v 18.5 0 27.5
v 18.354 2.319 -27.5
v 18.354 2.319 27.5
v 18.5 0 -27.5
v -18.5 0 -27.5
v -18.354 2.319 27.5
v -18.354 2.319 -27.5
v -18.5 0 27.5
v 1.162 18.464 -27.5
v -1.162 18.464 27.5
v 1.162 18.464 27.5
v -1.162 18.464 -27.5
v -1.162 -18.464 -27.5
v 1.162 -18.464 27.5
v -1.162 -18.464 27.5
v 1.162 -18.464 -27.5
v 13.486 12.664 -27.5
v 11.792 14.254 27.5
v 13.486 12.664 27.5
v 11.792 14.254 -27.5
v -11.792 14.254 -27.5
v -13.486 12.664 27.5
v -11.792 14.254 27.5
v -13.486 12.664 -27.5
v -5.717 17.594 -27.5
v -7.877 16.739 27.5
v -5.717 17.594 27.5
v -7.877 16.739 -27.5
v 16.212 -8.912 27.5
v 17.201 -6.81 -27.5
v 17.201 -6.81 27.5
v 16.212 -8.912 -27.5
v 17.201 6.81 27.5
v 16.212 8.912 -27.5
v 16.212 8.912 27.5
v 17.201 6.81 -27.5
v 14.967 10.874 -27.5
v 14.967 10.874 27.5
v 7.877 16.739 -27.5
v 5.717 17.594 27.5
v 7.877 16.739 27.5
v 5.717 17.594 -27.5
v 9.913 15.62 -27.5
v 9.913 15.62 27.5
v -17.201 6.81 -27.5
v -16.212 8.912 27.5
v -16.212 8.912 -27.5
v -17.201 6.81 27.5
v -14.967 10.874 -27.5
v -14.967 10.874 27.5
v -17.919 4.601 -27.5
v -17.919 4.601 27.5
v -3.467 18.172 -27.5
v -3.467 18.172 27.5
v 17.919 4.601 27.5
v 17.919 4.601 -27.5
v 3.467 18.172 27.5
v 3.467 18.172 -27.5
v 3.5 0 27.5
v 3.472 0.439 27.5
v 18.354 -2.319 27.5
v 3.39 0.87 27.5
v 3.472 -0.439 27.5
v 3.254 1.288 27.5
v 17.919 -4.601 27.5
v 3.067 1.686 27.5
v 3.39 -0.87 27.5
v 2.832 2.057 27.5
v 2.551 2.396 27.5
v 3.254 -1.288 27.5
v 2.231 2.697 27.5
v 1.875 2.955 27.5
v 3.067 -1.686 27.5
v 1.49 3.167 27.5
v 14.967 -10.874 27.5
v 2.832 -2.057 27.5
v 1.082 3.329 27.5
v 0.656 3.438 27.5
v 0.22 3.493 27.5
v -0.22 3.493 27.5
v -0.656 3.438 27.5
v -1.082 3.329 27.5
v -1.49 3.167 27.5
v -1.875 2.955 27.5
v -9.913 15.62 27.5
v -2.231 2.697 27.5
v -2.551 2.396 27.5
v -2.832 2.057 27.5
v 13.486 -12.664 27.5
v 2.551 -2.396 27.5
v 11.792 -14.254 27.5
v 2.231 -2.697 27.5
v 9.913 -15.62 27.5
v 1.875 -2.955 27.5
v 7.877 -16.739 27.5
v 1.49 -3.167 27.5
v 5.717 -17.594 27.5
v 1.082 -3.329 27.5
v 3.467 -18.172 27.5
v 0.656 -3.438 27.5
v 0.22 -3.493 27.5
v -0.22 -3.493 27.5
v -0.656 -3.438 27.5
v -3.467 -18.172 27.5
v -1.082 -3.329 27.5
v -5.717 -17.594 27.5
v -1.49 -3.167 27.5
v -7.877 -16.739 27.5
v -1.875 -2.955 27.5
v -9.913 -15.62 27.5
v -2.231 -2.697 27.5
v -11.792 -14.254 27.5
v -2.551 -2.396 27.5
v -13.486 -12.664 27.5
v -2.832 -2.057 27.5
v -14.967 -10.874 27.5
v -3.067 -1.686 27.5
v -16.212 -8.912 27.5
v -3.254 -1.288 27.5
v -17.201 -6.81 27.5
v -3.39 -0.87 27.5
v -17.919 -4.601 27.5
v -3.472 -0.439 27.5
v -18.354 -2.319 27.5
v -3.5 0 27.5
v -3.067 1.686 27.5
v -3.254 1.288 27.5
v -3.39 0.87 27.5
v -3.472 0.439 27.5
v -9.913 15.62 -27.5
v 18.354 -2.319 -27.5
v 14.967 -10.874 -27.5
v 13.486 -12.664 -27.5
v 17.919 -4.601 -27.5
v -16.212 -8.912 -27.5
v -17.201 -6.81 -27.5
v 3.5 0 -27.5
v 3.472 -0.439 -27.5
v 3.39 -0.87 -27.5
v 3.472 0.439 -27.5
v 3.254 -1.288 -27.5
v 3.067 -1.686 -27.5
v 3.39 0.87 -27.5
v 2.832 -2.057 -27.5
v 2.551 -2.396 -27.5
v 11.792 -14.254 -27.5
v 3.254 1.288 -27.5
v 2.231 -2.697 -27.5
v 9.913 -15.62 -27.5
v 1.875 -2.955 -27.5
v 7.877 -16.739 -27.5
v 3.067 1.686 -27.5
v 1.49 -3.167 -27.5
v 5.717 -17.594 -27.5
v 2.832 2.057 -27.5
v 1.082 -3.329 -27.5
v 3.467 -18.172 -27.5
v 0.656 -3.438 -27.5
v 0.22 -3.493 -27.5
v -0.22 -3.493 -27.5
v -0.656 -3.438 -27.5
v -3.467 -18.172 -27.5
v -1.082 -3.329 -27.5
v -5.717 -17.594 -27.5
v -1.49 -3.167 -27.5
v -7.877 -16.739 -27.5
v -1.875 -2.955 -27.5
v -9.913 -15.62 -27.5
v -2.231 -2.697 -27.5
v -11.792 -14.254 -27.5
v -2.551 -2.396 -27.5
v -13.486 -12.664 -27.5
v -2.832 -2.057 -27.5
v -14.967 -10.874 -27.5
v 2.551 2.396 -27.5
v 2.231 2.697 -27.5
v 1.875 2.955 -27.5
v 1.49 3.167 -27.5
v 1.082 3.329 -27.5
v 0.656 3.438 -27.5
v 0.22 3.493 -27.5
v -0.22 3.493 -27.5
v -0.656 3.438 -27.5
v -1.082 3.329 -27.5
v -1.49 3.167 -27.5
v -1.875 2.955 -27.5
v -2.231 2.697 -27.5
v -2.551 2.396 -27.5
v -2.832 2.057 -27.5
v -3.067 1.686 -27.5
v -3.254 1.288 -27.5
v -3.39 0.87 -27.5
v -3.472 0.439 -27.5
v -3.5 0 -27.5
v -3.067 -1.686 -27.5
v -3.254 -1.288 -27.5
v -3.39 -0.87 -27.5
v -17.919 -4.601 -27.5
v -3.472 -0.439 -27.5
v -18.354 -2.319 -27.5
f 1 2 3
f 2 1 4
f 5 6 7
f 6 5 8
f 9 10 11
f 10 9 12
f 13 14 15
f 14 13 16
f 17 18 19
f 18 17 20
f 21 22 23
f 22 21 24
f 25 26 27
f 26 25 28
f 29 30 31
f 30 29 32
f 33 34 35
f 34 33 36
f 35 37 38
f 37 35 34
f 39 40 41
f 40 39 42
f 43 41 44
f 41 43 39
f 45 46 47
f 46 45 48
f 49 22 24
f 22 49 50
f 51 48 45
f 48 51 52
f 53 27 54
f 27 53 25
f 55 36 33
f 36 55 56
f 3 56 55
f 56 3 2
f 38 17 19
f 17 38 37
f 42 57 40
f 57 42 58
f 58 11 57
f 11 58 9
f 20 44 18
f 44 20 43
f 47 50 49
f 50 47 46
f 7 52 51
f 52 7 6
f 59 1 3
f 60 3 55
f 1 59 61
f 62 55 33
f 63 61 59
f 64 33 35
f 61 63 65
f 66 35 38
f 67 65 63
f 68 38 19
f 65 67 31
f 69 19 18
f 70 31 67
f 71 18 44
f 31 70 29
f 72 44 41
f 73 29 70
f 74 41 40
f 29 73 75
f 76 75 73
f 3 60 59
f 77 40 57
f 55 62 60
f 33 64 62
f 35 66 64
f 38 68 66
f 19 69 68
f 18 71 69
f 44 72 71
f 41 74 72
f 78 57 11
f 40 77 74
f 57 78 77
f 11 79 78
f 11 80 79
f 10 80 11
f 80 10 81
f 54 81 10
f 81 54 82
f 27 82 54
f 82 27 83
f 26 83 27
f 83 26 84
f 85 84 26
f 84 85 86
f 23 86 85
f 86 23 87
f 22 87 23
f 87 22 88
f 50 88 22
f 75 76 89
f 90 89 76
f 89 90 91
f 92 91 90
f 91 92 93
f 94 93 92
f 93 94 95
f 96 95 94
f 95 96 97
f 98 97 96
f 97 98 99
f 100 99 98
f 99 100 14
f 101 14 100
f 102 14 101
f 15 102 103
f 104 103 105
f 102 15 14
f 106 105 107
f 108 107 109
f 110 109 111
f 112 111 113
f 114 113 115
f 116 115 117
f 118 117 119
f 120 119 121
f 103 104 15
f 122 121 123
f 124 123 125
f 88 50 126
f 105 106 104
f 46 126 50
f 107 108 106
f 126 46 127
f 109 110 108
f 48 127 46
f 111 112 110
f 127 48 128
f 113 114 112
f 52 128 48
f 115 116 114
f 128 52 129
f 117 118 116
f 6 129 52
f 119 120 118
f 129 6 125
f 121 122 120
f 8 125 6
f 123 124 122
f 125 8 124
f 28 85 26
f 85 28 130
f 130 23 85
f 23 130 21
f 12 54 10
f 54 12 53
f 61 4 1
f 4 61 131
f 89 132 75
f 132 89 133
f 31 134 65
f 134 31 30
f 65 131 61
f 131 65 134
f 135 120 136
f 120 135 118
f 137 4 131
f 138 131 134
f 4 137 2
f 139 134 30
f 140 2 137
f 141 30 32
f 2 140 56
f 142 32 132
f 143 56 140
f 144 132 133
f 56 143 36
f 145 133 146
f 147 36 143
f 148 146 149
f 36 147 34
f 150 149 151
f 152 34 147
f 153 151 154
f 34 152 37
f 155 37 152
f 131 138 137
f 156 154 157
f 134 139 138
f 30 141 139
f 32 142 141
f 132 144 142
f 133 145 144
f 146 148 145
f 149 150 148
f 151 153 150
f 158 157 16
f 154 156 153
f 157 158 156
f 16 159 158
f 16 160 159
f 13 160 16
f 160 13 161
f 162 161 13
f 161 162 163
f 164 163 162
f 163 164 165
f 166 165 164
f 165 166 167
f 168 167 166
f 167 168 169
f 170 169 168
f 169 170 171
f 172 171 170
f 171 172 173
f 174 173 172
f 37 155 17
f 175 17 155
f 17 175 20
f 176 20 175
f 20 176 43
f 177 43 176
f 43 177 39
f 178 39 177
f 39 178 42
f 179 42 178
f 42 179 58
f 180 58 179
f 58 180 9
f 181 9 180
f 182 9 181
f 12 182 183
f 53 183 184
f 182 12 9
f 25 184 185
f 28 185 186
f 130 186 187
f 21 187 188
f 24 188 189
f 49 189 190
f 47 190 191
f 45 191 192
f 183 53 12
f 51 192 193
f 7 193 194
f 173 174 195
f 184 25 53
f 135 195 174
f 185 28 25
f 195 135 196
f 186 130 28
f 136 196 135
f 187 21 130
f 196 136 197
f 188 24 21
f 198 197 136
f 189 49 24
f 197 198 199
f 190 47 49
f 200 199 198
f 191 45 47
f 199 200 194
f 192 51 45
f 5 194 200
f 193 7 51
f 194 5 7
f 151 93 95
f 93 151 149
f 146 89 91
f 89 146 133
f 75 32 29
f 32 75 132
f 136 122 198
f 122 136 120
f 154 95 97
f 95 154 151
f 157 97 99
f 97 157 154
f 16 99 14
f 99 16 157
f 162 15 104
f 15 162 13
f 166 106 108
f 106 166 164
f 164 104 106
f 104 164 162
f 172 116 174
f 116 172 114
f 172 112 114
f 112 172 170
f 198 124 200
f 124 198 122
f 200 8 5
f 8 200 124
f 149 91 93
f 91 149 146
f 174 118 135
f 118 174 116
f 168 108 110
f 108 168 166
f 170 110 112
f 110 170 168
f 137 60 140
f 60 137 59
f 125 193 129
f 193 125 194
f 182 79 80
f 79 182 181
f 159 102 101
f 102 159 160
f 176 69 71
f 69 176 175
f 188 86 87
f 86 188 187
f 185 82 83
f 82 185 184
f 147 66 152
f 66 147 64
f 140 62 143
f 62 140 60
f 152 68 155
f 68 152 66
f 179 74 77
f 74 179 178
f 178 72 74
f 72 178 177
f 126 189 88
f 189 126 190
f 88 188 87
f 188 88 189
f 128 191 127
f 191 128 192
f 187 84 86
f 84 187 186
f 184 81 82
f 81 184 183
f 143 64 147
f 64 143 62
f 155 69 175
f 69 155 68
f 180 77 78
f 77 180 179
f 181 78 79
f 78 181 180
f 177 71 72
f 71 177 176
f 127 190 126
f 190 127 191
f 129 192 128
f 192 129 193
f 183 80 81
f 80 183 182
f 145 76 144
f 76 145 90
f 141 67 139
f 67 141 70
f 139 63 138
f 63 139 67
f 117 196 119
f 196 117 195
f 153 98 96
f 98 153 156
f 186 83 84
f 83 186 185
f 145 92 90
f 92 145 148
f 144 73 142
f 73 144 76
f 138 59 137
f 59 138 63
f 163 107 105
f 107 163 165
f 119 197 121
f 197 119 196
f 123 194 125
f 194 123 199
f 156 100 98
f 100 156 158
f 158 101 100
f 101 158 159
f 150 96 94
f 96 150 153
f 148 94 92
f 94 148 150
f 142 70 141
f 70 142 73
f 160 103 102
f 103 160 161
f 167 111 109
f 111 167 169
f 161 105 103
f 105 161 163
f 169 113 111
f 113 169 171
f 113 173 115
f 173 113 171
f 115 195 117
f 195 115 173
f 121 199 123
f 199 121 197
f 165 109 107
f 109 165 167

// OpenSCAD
$fn = 50;


difference() {
	union() {
		translate(v = [0, 0, -27.5000000000]) {
			cylinder(h = 55, r = 18.5000000000);
		}
	}
	union() {
		translate(v = [0, 0, -100.0000000000]) {
			cylinder(h = 200, r = 3.5000000000);
		}
	}
}
